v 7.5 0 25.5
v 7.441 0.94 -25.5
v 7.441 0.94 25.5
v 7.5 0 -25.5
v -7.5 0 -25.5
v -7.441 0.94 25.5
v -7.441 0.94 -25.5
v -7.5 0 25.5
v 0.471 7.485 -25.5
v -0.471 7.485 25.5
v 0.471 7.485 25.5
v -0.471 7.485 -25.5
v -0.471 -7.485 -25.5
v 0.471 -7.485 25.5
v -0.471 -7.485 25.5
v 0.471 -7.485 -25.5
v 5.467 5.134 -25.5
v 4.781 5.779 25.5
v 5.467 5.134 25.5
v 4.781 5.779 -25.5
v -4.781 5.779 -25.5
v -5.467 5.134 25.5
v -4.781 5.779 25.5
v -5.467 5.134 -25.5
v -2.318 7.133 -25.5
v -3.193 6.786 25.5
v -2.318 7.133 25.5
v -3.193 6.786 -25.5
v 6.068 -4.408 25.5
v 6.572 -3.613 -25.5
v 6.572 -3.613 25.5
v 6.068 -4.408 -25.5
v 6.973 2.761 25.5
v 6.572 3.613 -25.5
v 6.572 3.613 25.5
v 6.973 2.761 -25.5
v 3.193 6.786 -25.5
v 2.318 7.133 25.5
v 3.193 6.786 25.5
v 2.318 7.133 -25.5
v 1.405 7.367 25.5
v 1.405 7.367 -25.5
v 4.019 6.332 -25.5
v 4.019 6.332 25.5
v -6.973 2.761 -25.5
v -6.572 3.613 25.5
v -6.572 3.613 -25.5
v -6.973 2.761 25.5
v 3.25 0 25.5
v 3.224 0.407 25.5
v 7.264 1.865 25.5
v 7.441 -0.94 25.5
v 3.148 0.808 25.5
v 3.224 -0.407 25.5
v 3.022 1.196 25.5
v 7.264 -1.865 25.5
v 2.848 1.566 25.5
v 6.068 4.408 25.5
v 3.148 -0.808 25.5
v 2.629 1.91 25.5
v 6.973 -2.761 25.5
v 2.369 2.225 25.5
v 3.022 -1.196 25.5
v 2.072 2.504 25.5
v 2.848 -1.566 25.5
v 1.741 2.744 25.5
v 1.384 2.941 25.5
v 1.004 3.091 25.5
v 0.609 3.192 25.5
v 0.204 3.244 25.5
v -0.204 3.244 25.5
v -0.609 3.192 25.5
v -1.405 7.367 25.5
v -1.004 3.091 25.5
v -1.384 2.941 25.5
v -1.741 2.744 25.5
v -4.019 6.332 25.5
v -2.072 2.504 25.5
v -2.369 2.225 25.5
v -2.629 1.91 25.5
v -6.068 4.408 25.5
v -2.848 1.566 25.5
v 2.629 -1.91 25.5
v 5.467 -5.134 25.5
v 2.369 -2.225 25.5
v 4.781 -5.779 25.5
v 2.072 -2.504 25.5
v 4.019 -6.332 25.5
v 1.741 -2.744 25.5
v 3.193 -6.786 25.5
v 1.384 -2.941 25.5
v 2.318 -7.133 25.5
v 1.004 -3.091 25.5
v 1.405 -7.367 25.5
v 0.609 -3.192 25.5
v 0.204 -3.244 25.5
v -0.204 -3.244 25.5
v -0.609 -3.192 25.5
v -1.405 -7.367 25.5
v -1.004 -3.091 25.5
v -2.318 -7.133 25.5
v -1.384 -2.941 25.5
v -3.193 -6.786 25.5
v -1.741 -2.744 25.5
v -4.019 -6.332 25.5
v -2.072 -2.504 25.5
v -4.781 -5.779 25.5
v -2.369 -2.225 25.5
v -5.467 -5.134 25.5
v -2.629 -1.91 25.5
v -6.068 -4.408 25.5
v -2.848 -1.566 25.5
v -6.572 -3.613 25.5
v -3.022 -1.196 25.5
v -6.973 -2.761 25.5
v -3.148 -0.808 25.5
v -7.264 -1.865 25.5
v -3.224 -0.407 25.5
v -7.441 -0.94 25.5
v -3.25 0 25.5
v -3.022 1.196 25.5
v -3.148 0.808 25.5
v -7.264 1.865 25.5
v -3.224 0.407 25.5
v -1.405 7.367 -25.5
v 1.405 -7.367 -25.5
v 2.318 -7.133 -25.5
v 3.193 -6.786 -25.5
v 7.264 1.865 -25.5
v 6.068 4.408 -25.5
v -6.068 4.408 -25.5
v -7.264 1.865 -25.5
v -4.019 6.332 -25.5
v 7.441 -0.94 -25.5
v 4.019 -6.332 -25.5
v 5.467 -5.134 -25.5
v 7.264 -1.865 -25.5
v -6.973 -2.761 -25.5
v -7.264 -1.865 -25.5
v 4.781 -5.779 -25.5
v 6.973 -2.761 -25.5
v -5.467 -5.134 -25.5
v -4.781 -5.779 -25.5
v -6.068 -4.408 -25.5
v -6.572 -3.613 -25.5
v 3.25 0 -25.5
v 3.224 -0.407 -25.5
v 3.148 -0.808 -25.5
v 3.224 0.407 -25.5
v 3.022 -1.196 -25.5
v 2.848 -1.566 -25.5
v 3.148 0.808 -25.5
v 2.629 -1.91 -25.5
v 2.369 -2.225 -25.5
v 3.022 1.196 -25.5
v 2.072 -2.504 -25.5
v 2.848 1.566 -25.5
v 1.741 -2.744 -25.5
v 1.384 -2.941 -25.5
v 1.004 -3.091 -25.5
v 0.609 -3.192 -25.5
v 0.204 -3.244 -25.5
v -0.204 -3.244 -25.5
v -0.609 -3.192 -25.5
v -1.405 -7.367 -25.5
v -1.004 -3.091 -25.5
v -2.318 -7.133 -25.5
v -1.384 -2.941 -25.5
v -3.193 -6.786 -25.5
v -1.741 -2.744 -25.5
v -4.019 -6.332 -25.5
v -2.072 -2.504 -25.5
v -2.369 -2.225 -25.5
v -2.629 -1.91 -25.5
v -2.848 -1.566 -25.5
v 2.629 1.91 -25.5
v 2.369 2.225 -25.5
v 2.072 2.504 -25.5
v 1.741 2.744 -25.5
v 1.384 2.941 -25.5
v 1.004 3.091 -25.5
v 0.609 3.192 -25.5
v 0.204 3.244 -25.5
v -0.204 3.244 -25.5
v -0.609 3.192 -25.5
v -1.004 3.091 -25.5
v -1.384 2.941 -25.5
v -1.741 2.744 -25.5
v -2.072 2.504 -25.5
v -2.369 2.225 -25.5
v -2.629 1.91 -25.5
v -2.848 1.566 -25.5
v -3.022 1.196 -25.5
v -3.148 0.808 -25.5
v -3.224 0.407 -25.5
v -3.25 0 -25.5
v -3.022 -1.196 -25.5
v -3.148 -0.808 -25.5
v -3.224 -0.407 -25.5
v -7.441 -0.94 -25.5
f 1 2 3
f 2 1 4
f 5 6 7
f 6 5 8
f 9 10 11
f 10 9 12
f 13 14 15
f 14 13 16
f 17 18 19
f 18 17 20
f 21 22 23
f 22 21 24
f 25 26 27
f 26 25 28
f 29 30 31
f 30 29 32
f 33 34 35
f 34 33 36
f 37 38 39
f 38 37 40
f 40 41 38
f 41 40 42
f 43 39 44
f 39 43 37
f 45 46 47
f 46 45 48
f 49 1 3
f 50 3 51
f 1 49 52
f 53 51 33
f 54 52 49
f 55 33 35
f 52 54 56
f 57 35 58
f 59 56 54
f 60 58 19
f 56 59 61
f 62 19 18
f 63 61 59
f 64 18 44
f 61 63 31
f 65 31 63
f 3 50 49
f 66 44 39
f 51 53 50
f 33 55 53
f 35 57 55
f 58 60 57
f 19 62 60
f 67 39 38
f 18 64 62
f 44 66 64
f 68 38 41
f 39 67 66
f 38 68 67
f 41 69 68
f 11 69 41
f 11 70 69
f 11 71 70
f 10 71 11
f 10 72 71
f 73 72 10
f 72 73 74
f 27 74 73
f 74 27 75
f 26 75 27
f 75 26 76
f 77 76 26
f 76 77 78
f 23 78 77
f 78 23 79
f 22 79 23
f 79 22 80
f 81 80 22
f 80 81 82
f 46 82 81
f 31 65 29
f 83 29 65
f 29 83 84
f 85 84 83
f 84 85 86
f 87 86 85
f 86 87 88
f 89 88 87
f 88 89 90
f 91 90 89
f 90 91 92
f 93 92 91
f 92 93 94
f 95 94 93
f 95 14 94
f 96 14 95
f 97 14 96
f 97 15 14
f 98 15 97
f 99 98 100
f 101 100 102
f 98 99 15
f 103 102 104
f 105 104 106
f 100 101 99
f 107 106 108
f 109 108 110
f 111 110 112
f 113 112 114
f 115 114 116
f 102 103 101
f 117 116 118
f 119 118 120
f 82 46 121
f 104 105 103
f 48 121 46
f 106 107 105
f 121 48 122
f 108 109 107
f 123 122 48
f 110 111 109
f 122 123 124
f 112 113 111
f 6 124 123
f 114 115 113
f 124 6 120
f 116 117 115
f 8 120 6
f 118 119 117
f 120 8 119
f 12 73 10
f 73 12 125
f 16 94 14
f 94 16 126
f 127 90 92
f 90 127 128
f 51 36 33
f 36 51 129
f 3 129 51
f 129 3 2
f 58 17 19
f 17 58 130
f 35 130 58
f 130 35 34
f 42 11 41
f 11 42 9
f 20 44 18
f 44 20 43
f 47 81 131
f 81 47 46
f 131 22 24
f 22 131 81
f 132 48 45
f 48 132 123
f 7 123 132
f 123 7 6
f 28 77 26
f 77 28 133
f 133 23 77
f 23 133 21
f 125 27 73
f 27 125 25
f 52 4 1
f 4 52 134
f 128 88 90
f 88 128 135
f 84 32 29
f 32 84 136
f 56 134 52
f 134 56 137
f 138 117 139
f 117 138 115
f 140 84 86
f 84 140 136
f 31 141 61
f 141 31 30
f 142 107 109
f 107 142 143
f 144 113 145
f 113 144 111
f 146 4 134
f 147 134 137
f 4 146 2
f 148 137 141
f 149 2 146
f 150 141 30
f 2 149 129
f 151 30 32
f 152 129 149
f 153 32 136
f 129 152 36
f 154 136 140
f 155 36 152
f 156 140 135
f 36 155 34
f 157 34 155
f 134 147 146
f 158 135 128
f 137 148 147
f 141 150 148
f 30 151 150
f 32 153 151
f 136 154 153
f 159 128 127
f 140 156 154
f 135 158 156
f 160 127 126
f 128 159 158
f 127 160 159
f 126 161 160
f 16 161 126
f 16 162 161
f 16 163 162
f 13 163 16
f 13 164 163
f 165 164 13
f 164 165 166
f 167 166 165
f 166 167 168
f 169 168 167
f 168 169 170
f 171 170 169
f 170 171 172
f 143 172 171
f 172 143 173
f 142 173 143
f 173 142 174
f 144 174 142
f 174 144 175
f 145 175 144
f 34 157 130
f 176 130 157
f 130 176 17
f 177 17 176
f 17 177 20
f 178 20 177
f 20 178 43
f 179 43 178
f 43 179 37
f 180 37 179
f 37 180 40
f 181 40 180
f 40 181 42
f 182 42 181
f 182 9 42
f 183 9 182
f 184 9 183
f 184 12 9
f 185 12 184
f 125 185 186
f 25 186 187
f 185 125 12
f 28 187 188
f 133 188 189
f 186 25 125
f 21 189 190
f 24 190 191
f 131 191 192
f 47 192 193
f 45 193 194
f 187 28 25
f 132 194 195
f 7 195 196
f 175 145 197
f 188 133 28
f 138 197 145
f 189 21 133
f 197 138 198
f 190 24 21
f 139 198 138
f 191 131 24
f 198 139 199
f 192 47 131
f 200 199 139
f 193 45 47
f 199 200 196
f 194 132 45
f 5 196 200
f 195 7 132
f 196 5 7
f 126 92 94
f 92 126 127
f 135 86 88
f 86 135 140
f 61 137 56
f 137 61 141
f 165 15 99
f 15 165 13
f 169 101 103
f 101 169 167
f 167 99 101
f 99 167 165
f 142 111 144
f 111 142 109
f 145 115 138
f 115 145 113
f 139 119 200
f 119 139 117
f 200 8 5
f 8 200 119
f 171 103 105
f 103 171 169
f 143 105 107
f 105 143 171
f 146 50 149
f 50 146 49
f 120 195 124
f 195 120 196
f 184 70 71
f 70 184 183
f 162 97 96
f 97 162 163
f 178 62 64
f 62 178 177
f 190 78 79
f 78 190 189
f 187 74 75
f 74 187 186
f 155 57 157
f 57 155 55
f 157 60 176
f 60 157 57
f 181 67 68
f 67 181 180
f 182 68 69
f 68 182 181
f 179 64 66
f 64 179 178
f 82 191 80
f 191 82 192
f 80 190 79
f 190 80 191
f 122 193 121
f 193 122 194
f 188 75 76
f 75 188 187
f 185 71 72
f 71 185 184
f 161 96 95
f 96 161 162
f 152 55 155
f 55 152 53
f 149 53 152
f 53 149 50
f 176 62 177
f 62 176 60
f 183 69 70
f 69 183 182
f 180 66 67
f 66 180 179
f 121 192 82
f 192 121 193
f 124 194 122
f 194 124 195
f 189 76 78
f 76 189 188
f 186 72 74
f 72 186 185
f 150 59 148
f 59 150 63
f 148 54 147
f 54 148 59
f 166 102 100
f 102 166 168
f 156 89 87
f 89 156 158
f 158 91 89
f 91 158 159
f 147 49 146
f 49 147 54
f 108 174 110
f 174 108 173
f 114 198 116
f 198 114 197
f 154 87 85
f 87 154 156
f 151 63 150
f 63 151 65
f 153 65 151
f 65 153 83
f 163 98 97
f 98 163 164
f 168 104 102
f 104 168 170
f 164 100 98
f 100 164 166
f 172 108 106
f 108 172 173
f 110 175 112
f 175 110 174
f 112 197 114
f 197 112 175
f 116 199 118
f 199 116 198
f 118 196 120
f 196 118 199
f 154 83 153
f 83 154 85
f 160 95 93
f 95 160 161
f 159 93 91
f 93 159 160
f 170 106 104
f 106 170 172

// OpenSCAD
$fn = 50;


difference() {
	union() {
		translate(v = [0, 0, -25.5000000000]) {
			cylinder(h = 51, r = 7.5000000000);
		}
	}
	union() {
		translate(v = [0, 0, -100.0000000000]) {
			cylinder(h = 200, r = 3.2500000000);
		}
	}
}
